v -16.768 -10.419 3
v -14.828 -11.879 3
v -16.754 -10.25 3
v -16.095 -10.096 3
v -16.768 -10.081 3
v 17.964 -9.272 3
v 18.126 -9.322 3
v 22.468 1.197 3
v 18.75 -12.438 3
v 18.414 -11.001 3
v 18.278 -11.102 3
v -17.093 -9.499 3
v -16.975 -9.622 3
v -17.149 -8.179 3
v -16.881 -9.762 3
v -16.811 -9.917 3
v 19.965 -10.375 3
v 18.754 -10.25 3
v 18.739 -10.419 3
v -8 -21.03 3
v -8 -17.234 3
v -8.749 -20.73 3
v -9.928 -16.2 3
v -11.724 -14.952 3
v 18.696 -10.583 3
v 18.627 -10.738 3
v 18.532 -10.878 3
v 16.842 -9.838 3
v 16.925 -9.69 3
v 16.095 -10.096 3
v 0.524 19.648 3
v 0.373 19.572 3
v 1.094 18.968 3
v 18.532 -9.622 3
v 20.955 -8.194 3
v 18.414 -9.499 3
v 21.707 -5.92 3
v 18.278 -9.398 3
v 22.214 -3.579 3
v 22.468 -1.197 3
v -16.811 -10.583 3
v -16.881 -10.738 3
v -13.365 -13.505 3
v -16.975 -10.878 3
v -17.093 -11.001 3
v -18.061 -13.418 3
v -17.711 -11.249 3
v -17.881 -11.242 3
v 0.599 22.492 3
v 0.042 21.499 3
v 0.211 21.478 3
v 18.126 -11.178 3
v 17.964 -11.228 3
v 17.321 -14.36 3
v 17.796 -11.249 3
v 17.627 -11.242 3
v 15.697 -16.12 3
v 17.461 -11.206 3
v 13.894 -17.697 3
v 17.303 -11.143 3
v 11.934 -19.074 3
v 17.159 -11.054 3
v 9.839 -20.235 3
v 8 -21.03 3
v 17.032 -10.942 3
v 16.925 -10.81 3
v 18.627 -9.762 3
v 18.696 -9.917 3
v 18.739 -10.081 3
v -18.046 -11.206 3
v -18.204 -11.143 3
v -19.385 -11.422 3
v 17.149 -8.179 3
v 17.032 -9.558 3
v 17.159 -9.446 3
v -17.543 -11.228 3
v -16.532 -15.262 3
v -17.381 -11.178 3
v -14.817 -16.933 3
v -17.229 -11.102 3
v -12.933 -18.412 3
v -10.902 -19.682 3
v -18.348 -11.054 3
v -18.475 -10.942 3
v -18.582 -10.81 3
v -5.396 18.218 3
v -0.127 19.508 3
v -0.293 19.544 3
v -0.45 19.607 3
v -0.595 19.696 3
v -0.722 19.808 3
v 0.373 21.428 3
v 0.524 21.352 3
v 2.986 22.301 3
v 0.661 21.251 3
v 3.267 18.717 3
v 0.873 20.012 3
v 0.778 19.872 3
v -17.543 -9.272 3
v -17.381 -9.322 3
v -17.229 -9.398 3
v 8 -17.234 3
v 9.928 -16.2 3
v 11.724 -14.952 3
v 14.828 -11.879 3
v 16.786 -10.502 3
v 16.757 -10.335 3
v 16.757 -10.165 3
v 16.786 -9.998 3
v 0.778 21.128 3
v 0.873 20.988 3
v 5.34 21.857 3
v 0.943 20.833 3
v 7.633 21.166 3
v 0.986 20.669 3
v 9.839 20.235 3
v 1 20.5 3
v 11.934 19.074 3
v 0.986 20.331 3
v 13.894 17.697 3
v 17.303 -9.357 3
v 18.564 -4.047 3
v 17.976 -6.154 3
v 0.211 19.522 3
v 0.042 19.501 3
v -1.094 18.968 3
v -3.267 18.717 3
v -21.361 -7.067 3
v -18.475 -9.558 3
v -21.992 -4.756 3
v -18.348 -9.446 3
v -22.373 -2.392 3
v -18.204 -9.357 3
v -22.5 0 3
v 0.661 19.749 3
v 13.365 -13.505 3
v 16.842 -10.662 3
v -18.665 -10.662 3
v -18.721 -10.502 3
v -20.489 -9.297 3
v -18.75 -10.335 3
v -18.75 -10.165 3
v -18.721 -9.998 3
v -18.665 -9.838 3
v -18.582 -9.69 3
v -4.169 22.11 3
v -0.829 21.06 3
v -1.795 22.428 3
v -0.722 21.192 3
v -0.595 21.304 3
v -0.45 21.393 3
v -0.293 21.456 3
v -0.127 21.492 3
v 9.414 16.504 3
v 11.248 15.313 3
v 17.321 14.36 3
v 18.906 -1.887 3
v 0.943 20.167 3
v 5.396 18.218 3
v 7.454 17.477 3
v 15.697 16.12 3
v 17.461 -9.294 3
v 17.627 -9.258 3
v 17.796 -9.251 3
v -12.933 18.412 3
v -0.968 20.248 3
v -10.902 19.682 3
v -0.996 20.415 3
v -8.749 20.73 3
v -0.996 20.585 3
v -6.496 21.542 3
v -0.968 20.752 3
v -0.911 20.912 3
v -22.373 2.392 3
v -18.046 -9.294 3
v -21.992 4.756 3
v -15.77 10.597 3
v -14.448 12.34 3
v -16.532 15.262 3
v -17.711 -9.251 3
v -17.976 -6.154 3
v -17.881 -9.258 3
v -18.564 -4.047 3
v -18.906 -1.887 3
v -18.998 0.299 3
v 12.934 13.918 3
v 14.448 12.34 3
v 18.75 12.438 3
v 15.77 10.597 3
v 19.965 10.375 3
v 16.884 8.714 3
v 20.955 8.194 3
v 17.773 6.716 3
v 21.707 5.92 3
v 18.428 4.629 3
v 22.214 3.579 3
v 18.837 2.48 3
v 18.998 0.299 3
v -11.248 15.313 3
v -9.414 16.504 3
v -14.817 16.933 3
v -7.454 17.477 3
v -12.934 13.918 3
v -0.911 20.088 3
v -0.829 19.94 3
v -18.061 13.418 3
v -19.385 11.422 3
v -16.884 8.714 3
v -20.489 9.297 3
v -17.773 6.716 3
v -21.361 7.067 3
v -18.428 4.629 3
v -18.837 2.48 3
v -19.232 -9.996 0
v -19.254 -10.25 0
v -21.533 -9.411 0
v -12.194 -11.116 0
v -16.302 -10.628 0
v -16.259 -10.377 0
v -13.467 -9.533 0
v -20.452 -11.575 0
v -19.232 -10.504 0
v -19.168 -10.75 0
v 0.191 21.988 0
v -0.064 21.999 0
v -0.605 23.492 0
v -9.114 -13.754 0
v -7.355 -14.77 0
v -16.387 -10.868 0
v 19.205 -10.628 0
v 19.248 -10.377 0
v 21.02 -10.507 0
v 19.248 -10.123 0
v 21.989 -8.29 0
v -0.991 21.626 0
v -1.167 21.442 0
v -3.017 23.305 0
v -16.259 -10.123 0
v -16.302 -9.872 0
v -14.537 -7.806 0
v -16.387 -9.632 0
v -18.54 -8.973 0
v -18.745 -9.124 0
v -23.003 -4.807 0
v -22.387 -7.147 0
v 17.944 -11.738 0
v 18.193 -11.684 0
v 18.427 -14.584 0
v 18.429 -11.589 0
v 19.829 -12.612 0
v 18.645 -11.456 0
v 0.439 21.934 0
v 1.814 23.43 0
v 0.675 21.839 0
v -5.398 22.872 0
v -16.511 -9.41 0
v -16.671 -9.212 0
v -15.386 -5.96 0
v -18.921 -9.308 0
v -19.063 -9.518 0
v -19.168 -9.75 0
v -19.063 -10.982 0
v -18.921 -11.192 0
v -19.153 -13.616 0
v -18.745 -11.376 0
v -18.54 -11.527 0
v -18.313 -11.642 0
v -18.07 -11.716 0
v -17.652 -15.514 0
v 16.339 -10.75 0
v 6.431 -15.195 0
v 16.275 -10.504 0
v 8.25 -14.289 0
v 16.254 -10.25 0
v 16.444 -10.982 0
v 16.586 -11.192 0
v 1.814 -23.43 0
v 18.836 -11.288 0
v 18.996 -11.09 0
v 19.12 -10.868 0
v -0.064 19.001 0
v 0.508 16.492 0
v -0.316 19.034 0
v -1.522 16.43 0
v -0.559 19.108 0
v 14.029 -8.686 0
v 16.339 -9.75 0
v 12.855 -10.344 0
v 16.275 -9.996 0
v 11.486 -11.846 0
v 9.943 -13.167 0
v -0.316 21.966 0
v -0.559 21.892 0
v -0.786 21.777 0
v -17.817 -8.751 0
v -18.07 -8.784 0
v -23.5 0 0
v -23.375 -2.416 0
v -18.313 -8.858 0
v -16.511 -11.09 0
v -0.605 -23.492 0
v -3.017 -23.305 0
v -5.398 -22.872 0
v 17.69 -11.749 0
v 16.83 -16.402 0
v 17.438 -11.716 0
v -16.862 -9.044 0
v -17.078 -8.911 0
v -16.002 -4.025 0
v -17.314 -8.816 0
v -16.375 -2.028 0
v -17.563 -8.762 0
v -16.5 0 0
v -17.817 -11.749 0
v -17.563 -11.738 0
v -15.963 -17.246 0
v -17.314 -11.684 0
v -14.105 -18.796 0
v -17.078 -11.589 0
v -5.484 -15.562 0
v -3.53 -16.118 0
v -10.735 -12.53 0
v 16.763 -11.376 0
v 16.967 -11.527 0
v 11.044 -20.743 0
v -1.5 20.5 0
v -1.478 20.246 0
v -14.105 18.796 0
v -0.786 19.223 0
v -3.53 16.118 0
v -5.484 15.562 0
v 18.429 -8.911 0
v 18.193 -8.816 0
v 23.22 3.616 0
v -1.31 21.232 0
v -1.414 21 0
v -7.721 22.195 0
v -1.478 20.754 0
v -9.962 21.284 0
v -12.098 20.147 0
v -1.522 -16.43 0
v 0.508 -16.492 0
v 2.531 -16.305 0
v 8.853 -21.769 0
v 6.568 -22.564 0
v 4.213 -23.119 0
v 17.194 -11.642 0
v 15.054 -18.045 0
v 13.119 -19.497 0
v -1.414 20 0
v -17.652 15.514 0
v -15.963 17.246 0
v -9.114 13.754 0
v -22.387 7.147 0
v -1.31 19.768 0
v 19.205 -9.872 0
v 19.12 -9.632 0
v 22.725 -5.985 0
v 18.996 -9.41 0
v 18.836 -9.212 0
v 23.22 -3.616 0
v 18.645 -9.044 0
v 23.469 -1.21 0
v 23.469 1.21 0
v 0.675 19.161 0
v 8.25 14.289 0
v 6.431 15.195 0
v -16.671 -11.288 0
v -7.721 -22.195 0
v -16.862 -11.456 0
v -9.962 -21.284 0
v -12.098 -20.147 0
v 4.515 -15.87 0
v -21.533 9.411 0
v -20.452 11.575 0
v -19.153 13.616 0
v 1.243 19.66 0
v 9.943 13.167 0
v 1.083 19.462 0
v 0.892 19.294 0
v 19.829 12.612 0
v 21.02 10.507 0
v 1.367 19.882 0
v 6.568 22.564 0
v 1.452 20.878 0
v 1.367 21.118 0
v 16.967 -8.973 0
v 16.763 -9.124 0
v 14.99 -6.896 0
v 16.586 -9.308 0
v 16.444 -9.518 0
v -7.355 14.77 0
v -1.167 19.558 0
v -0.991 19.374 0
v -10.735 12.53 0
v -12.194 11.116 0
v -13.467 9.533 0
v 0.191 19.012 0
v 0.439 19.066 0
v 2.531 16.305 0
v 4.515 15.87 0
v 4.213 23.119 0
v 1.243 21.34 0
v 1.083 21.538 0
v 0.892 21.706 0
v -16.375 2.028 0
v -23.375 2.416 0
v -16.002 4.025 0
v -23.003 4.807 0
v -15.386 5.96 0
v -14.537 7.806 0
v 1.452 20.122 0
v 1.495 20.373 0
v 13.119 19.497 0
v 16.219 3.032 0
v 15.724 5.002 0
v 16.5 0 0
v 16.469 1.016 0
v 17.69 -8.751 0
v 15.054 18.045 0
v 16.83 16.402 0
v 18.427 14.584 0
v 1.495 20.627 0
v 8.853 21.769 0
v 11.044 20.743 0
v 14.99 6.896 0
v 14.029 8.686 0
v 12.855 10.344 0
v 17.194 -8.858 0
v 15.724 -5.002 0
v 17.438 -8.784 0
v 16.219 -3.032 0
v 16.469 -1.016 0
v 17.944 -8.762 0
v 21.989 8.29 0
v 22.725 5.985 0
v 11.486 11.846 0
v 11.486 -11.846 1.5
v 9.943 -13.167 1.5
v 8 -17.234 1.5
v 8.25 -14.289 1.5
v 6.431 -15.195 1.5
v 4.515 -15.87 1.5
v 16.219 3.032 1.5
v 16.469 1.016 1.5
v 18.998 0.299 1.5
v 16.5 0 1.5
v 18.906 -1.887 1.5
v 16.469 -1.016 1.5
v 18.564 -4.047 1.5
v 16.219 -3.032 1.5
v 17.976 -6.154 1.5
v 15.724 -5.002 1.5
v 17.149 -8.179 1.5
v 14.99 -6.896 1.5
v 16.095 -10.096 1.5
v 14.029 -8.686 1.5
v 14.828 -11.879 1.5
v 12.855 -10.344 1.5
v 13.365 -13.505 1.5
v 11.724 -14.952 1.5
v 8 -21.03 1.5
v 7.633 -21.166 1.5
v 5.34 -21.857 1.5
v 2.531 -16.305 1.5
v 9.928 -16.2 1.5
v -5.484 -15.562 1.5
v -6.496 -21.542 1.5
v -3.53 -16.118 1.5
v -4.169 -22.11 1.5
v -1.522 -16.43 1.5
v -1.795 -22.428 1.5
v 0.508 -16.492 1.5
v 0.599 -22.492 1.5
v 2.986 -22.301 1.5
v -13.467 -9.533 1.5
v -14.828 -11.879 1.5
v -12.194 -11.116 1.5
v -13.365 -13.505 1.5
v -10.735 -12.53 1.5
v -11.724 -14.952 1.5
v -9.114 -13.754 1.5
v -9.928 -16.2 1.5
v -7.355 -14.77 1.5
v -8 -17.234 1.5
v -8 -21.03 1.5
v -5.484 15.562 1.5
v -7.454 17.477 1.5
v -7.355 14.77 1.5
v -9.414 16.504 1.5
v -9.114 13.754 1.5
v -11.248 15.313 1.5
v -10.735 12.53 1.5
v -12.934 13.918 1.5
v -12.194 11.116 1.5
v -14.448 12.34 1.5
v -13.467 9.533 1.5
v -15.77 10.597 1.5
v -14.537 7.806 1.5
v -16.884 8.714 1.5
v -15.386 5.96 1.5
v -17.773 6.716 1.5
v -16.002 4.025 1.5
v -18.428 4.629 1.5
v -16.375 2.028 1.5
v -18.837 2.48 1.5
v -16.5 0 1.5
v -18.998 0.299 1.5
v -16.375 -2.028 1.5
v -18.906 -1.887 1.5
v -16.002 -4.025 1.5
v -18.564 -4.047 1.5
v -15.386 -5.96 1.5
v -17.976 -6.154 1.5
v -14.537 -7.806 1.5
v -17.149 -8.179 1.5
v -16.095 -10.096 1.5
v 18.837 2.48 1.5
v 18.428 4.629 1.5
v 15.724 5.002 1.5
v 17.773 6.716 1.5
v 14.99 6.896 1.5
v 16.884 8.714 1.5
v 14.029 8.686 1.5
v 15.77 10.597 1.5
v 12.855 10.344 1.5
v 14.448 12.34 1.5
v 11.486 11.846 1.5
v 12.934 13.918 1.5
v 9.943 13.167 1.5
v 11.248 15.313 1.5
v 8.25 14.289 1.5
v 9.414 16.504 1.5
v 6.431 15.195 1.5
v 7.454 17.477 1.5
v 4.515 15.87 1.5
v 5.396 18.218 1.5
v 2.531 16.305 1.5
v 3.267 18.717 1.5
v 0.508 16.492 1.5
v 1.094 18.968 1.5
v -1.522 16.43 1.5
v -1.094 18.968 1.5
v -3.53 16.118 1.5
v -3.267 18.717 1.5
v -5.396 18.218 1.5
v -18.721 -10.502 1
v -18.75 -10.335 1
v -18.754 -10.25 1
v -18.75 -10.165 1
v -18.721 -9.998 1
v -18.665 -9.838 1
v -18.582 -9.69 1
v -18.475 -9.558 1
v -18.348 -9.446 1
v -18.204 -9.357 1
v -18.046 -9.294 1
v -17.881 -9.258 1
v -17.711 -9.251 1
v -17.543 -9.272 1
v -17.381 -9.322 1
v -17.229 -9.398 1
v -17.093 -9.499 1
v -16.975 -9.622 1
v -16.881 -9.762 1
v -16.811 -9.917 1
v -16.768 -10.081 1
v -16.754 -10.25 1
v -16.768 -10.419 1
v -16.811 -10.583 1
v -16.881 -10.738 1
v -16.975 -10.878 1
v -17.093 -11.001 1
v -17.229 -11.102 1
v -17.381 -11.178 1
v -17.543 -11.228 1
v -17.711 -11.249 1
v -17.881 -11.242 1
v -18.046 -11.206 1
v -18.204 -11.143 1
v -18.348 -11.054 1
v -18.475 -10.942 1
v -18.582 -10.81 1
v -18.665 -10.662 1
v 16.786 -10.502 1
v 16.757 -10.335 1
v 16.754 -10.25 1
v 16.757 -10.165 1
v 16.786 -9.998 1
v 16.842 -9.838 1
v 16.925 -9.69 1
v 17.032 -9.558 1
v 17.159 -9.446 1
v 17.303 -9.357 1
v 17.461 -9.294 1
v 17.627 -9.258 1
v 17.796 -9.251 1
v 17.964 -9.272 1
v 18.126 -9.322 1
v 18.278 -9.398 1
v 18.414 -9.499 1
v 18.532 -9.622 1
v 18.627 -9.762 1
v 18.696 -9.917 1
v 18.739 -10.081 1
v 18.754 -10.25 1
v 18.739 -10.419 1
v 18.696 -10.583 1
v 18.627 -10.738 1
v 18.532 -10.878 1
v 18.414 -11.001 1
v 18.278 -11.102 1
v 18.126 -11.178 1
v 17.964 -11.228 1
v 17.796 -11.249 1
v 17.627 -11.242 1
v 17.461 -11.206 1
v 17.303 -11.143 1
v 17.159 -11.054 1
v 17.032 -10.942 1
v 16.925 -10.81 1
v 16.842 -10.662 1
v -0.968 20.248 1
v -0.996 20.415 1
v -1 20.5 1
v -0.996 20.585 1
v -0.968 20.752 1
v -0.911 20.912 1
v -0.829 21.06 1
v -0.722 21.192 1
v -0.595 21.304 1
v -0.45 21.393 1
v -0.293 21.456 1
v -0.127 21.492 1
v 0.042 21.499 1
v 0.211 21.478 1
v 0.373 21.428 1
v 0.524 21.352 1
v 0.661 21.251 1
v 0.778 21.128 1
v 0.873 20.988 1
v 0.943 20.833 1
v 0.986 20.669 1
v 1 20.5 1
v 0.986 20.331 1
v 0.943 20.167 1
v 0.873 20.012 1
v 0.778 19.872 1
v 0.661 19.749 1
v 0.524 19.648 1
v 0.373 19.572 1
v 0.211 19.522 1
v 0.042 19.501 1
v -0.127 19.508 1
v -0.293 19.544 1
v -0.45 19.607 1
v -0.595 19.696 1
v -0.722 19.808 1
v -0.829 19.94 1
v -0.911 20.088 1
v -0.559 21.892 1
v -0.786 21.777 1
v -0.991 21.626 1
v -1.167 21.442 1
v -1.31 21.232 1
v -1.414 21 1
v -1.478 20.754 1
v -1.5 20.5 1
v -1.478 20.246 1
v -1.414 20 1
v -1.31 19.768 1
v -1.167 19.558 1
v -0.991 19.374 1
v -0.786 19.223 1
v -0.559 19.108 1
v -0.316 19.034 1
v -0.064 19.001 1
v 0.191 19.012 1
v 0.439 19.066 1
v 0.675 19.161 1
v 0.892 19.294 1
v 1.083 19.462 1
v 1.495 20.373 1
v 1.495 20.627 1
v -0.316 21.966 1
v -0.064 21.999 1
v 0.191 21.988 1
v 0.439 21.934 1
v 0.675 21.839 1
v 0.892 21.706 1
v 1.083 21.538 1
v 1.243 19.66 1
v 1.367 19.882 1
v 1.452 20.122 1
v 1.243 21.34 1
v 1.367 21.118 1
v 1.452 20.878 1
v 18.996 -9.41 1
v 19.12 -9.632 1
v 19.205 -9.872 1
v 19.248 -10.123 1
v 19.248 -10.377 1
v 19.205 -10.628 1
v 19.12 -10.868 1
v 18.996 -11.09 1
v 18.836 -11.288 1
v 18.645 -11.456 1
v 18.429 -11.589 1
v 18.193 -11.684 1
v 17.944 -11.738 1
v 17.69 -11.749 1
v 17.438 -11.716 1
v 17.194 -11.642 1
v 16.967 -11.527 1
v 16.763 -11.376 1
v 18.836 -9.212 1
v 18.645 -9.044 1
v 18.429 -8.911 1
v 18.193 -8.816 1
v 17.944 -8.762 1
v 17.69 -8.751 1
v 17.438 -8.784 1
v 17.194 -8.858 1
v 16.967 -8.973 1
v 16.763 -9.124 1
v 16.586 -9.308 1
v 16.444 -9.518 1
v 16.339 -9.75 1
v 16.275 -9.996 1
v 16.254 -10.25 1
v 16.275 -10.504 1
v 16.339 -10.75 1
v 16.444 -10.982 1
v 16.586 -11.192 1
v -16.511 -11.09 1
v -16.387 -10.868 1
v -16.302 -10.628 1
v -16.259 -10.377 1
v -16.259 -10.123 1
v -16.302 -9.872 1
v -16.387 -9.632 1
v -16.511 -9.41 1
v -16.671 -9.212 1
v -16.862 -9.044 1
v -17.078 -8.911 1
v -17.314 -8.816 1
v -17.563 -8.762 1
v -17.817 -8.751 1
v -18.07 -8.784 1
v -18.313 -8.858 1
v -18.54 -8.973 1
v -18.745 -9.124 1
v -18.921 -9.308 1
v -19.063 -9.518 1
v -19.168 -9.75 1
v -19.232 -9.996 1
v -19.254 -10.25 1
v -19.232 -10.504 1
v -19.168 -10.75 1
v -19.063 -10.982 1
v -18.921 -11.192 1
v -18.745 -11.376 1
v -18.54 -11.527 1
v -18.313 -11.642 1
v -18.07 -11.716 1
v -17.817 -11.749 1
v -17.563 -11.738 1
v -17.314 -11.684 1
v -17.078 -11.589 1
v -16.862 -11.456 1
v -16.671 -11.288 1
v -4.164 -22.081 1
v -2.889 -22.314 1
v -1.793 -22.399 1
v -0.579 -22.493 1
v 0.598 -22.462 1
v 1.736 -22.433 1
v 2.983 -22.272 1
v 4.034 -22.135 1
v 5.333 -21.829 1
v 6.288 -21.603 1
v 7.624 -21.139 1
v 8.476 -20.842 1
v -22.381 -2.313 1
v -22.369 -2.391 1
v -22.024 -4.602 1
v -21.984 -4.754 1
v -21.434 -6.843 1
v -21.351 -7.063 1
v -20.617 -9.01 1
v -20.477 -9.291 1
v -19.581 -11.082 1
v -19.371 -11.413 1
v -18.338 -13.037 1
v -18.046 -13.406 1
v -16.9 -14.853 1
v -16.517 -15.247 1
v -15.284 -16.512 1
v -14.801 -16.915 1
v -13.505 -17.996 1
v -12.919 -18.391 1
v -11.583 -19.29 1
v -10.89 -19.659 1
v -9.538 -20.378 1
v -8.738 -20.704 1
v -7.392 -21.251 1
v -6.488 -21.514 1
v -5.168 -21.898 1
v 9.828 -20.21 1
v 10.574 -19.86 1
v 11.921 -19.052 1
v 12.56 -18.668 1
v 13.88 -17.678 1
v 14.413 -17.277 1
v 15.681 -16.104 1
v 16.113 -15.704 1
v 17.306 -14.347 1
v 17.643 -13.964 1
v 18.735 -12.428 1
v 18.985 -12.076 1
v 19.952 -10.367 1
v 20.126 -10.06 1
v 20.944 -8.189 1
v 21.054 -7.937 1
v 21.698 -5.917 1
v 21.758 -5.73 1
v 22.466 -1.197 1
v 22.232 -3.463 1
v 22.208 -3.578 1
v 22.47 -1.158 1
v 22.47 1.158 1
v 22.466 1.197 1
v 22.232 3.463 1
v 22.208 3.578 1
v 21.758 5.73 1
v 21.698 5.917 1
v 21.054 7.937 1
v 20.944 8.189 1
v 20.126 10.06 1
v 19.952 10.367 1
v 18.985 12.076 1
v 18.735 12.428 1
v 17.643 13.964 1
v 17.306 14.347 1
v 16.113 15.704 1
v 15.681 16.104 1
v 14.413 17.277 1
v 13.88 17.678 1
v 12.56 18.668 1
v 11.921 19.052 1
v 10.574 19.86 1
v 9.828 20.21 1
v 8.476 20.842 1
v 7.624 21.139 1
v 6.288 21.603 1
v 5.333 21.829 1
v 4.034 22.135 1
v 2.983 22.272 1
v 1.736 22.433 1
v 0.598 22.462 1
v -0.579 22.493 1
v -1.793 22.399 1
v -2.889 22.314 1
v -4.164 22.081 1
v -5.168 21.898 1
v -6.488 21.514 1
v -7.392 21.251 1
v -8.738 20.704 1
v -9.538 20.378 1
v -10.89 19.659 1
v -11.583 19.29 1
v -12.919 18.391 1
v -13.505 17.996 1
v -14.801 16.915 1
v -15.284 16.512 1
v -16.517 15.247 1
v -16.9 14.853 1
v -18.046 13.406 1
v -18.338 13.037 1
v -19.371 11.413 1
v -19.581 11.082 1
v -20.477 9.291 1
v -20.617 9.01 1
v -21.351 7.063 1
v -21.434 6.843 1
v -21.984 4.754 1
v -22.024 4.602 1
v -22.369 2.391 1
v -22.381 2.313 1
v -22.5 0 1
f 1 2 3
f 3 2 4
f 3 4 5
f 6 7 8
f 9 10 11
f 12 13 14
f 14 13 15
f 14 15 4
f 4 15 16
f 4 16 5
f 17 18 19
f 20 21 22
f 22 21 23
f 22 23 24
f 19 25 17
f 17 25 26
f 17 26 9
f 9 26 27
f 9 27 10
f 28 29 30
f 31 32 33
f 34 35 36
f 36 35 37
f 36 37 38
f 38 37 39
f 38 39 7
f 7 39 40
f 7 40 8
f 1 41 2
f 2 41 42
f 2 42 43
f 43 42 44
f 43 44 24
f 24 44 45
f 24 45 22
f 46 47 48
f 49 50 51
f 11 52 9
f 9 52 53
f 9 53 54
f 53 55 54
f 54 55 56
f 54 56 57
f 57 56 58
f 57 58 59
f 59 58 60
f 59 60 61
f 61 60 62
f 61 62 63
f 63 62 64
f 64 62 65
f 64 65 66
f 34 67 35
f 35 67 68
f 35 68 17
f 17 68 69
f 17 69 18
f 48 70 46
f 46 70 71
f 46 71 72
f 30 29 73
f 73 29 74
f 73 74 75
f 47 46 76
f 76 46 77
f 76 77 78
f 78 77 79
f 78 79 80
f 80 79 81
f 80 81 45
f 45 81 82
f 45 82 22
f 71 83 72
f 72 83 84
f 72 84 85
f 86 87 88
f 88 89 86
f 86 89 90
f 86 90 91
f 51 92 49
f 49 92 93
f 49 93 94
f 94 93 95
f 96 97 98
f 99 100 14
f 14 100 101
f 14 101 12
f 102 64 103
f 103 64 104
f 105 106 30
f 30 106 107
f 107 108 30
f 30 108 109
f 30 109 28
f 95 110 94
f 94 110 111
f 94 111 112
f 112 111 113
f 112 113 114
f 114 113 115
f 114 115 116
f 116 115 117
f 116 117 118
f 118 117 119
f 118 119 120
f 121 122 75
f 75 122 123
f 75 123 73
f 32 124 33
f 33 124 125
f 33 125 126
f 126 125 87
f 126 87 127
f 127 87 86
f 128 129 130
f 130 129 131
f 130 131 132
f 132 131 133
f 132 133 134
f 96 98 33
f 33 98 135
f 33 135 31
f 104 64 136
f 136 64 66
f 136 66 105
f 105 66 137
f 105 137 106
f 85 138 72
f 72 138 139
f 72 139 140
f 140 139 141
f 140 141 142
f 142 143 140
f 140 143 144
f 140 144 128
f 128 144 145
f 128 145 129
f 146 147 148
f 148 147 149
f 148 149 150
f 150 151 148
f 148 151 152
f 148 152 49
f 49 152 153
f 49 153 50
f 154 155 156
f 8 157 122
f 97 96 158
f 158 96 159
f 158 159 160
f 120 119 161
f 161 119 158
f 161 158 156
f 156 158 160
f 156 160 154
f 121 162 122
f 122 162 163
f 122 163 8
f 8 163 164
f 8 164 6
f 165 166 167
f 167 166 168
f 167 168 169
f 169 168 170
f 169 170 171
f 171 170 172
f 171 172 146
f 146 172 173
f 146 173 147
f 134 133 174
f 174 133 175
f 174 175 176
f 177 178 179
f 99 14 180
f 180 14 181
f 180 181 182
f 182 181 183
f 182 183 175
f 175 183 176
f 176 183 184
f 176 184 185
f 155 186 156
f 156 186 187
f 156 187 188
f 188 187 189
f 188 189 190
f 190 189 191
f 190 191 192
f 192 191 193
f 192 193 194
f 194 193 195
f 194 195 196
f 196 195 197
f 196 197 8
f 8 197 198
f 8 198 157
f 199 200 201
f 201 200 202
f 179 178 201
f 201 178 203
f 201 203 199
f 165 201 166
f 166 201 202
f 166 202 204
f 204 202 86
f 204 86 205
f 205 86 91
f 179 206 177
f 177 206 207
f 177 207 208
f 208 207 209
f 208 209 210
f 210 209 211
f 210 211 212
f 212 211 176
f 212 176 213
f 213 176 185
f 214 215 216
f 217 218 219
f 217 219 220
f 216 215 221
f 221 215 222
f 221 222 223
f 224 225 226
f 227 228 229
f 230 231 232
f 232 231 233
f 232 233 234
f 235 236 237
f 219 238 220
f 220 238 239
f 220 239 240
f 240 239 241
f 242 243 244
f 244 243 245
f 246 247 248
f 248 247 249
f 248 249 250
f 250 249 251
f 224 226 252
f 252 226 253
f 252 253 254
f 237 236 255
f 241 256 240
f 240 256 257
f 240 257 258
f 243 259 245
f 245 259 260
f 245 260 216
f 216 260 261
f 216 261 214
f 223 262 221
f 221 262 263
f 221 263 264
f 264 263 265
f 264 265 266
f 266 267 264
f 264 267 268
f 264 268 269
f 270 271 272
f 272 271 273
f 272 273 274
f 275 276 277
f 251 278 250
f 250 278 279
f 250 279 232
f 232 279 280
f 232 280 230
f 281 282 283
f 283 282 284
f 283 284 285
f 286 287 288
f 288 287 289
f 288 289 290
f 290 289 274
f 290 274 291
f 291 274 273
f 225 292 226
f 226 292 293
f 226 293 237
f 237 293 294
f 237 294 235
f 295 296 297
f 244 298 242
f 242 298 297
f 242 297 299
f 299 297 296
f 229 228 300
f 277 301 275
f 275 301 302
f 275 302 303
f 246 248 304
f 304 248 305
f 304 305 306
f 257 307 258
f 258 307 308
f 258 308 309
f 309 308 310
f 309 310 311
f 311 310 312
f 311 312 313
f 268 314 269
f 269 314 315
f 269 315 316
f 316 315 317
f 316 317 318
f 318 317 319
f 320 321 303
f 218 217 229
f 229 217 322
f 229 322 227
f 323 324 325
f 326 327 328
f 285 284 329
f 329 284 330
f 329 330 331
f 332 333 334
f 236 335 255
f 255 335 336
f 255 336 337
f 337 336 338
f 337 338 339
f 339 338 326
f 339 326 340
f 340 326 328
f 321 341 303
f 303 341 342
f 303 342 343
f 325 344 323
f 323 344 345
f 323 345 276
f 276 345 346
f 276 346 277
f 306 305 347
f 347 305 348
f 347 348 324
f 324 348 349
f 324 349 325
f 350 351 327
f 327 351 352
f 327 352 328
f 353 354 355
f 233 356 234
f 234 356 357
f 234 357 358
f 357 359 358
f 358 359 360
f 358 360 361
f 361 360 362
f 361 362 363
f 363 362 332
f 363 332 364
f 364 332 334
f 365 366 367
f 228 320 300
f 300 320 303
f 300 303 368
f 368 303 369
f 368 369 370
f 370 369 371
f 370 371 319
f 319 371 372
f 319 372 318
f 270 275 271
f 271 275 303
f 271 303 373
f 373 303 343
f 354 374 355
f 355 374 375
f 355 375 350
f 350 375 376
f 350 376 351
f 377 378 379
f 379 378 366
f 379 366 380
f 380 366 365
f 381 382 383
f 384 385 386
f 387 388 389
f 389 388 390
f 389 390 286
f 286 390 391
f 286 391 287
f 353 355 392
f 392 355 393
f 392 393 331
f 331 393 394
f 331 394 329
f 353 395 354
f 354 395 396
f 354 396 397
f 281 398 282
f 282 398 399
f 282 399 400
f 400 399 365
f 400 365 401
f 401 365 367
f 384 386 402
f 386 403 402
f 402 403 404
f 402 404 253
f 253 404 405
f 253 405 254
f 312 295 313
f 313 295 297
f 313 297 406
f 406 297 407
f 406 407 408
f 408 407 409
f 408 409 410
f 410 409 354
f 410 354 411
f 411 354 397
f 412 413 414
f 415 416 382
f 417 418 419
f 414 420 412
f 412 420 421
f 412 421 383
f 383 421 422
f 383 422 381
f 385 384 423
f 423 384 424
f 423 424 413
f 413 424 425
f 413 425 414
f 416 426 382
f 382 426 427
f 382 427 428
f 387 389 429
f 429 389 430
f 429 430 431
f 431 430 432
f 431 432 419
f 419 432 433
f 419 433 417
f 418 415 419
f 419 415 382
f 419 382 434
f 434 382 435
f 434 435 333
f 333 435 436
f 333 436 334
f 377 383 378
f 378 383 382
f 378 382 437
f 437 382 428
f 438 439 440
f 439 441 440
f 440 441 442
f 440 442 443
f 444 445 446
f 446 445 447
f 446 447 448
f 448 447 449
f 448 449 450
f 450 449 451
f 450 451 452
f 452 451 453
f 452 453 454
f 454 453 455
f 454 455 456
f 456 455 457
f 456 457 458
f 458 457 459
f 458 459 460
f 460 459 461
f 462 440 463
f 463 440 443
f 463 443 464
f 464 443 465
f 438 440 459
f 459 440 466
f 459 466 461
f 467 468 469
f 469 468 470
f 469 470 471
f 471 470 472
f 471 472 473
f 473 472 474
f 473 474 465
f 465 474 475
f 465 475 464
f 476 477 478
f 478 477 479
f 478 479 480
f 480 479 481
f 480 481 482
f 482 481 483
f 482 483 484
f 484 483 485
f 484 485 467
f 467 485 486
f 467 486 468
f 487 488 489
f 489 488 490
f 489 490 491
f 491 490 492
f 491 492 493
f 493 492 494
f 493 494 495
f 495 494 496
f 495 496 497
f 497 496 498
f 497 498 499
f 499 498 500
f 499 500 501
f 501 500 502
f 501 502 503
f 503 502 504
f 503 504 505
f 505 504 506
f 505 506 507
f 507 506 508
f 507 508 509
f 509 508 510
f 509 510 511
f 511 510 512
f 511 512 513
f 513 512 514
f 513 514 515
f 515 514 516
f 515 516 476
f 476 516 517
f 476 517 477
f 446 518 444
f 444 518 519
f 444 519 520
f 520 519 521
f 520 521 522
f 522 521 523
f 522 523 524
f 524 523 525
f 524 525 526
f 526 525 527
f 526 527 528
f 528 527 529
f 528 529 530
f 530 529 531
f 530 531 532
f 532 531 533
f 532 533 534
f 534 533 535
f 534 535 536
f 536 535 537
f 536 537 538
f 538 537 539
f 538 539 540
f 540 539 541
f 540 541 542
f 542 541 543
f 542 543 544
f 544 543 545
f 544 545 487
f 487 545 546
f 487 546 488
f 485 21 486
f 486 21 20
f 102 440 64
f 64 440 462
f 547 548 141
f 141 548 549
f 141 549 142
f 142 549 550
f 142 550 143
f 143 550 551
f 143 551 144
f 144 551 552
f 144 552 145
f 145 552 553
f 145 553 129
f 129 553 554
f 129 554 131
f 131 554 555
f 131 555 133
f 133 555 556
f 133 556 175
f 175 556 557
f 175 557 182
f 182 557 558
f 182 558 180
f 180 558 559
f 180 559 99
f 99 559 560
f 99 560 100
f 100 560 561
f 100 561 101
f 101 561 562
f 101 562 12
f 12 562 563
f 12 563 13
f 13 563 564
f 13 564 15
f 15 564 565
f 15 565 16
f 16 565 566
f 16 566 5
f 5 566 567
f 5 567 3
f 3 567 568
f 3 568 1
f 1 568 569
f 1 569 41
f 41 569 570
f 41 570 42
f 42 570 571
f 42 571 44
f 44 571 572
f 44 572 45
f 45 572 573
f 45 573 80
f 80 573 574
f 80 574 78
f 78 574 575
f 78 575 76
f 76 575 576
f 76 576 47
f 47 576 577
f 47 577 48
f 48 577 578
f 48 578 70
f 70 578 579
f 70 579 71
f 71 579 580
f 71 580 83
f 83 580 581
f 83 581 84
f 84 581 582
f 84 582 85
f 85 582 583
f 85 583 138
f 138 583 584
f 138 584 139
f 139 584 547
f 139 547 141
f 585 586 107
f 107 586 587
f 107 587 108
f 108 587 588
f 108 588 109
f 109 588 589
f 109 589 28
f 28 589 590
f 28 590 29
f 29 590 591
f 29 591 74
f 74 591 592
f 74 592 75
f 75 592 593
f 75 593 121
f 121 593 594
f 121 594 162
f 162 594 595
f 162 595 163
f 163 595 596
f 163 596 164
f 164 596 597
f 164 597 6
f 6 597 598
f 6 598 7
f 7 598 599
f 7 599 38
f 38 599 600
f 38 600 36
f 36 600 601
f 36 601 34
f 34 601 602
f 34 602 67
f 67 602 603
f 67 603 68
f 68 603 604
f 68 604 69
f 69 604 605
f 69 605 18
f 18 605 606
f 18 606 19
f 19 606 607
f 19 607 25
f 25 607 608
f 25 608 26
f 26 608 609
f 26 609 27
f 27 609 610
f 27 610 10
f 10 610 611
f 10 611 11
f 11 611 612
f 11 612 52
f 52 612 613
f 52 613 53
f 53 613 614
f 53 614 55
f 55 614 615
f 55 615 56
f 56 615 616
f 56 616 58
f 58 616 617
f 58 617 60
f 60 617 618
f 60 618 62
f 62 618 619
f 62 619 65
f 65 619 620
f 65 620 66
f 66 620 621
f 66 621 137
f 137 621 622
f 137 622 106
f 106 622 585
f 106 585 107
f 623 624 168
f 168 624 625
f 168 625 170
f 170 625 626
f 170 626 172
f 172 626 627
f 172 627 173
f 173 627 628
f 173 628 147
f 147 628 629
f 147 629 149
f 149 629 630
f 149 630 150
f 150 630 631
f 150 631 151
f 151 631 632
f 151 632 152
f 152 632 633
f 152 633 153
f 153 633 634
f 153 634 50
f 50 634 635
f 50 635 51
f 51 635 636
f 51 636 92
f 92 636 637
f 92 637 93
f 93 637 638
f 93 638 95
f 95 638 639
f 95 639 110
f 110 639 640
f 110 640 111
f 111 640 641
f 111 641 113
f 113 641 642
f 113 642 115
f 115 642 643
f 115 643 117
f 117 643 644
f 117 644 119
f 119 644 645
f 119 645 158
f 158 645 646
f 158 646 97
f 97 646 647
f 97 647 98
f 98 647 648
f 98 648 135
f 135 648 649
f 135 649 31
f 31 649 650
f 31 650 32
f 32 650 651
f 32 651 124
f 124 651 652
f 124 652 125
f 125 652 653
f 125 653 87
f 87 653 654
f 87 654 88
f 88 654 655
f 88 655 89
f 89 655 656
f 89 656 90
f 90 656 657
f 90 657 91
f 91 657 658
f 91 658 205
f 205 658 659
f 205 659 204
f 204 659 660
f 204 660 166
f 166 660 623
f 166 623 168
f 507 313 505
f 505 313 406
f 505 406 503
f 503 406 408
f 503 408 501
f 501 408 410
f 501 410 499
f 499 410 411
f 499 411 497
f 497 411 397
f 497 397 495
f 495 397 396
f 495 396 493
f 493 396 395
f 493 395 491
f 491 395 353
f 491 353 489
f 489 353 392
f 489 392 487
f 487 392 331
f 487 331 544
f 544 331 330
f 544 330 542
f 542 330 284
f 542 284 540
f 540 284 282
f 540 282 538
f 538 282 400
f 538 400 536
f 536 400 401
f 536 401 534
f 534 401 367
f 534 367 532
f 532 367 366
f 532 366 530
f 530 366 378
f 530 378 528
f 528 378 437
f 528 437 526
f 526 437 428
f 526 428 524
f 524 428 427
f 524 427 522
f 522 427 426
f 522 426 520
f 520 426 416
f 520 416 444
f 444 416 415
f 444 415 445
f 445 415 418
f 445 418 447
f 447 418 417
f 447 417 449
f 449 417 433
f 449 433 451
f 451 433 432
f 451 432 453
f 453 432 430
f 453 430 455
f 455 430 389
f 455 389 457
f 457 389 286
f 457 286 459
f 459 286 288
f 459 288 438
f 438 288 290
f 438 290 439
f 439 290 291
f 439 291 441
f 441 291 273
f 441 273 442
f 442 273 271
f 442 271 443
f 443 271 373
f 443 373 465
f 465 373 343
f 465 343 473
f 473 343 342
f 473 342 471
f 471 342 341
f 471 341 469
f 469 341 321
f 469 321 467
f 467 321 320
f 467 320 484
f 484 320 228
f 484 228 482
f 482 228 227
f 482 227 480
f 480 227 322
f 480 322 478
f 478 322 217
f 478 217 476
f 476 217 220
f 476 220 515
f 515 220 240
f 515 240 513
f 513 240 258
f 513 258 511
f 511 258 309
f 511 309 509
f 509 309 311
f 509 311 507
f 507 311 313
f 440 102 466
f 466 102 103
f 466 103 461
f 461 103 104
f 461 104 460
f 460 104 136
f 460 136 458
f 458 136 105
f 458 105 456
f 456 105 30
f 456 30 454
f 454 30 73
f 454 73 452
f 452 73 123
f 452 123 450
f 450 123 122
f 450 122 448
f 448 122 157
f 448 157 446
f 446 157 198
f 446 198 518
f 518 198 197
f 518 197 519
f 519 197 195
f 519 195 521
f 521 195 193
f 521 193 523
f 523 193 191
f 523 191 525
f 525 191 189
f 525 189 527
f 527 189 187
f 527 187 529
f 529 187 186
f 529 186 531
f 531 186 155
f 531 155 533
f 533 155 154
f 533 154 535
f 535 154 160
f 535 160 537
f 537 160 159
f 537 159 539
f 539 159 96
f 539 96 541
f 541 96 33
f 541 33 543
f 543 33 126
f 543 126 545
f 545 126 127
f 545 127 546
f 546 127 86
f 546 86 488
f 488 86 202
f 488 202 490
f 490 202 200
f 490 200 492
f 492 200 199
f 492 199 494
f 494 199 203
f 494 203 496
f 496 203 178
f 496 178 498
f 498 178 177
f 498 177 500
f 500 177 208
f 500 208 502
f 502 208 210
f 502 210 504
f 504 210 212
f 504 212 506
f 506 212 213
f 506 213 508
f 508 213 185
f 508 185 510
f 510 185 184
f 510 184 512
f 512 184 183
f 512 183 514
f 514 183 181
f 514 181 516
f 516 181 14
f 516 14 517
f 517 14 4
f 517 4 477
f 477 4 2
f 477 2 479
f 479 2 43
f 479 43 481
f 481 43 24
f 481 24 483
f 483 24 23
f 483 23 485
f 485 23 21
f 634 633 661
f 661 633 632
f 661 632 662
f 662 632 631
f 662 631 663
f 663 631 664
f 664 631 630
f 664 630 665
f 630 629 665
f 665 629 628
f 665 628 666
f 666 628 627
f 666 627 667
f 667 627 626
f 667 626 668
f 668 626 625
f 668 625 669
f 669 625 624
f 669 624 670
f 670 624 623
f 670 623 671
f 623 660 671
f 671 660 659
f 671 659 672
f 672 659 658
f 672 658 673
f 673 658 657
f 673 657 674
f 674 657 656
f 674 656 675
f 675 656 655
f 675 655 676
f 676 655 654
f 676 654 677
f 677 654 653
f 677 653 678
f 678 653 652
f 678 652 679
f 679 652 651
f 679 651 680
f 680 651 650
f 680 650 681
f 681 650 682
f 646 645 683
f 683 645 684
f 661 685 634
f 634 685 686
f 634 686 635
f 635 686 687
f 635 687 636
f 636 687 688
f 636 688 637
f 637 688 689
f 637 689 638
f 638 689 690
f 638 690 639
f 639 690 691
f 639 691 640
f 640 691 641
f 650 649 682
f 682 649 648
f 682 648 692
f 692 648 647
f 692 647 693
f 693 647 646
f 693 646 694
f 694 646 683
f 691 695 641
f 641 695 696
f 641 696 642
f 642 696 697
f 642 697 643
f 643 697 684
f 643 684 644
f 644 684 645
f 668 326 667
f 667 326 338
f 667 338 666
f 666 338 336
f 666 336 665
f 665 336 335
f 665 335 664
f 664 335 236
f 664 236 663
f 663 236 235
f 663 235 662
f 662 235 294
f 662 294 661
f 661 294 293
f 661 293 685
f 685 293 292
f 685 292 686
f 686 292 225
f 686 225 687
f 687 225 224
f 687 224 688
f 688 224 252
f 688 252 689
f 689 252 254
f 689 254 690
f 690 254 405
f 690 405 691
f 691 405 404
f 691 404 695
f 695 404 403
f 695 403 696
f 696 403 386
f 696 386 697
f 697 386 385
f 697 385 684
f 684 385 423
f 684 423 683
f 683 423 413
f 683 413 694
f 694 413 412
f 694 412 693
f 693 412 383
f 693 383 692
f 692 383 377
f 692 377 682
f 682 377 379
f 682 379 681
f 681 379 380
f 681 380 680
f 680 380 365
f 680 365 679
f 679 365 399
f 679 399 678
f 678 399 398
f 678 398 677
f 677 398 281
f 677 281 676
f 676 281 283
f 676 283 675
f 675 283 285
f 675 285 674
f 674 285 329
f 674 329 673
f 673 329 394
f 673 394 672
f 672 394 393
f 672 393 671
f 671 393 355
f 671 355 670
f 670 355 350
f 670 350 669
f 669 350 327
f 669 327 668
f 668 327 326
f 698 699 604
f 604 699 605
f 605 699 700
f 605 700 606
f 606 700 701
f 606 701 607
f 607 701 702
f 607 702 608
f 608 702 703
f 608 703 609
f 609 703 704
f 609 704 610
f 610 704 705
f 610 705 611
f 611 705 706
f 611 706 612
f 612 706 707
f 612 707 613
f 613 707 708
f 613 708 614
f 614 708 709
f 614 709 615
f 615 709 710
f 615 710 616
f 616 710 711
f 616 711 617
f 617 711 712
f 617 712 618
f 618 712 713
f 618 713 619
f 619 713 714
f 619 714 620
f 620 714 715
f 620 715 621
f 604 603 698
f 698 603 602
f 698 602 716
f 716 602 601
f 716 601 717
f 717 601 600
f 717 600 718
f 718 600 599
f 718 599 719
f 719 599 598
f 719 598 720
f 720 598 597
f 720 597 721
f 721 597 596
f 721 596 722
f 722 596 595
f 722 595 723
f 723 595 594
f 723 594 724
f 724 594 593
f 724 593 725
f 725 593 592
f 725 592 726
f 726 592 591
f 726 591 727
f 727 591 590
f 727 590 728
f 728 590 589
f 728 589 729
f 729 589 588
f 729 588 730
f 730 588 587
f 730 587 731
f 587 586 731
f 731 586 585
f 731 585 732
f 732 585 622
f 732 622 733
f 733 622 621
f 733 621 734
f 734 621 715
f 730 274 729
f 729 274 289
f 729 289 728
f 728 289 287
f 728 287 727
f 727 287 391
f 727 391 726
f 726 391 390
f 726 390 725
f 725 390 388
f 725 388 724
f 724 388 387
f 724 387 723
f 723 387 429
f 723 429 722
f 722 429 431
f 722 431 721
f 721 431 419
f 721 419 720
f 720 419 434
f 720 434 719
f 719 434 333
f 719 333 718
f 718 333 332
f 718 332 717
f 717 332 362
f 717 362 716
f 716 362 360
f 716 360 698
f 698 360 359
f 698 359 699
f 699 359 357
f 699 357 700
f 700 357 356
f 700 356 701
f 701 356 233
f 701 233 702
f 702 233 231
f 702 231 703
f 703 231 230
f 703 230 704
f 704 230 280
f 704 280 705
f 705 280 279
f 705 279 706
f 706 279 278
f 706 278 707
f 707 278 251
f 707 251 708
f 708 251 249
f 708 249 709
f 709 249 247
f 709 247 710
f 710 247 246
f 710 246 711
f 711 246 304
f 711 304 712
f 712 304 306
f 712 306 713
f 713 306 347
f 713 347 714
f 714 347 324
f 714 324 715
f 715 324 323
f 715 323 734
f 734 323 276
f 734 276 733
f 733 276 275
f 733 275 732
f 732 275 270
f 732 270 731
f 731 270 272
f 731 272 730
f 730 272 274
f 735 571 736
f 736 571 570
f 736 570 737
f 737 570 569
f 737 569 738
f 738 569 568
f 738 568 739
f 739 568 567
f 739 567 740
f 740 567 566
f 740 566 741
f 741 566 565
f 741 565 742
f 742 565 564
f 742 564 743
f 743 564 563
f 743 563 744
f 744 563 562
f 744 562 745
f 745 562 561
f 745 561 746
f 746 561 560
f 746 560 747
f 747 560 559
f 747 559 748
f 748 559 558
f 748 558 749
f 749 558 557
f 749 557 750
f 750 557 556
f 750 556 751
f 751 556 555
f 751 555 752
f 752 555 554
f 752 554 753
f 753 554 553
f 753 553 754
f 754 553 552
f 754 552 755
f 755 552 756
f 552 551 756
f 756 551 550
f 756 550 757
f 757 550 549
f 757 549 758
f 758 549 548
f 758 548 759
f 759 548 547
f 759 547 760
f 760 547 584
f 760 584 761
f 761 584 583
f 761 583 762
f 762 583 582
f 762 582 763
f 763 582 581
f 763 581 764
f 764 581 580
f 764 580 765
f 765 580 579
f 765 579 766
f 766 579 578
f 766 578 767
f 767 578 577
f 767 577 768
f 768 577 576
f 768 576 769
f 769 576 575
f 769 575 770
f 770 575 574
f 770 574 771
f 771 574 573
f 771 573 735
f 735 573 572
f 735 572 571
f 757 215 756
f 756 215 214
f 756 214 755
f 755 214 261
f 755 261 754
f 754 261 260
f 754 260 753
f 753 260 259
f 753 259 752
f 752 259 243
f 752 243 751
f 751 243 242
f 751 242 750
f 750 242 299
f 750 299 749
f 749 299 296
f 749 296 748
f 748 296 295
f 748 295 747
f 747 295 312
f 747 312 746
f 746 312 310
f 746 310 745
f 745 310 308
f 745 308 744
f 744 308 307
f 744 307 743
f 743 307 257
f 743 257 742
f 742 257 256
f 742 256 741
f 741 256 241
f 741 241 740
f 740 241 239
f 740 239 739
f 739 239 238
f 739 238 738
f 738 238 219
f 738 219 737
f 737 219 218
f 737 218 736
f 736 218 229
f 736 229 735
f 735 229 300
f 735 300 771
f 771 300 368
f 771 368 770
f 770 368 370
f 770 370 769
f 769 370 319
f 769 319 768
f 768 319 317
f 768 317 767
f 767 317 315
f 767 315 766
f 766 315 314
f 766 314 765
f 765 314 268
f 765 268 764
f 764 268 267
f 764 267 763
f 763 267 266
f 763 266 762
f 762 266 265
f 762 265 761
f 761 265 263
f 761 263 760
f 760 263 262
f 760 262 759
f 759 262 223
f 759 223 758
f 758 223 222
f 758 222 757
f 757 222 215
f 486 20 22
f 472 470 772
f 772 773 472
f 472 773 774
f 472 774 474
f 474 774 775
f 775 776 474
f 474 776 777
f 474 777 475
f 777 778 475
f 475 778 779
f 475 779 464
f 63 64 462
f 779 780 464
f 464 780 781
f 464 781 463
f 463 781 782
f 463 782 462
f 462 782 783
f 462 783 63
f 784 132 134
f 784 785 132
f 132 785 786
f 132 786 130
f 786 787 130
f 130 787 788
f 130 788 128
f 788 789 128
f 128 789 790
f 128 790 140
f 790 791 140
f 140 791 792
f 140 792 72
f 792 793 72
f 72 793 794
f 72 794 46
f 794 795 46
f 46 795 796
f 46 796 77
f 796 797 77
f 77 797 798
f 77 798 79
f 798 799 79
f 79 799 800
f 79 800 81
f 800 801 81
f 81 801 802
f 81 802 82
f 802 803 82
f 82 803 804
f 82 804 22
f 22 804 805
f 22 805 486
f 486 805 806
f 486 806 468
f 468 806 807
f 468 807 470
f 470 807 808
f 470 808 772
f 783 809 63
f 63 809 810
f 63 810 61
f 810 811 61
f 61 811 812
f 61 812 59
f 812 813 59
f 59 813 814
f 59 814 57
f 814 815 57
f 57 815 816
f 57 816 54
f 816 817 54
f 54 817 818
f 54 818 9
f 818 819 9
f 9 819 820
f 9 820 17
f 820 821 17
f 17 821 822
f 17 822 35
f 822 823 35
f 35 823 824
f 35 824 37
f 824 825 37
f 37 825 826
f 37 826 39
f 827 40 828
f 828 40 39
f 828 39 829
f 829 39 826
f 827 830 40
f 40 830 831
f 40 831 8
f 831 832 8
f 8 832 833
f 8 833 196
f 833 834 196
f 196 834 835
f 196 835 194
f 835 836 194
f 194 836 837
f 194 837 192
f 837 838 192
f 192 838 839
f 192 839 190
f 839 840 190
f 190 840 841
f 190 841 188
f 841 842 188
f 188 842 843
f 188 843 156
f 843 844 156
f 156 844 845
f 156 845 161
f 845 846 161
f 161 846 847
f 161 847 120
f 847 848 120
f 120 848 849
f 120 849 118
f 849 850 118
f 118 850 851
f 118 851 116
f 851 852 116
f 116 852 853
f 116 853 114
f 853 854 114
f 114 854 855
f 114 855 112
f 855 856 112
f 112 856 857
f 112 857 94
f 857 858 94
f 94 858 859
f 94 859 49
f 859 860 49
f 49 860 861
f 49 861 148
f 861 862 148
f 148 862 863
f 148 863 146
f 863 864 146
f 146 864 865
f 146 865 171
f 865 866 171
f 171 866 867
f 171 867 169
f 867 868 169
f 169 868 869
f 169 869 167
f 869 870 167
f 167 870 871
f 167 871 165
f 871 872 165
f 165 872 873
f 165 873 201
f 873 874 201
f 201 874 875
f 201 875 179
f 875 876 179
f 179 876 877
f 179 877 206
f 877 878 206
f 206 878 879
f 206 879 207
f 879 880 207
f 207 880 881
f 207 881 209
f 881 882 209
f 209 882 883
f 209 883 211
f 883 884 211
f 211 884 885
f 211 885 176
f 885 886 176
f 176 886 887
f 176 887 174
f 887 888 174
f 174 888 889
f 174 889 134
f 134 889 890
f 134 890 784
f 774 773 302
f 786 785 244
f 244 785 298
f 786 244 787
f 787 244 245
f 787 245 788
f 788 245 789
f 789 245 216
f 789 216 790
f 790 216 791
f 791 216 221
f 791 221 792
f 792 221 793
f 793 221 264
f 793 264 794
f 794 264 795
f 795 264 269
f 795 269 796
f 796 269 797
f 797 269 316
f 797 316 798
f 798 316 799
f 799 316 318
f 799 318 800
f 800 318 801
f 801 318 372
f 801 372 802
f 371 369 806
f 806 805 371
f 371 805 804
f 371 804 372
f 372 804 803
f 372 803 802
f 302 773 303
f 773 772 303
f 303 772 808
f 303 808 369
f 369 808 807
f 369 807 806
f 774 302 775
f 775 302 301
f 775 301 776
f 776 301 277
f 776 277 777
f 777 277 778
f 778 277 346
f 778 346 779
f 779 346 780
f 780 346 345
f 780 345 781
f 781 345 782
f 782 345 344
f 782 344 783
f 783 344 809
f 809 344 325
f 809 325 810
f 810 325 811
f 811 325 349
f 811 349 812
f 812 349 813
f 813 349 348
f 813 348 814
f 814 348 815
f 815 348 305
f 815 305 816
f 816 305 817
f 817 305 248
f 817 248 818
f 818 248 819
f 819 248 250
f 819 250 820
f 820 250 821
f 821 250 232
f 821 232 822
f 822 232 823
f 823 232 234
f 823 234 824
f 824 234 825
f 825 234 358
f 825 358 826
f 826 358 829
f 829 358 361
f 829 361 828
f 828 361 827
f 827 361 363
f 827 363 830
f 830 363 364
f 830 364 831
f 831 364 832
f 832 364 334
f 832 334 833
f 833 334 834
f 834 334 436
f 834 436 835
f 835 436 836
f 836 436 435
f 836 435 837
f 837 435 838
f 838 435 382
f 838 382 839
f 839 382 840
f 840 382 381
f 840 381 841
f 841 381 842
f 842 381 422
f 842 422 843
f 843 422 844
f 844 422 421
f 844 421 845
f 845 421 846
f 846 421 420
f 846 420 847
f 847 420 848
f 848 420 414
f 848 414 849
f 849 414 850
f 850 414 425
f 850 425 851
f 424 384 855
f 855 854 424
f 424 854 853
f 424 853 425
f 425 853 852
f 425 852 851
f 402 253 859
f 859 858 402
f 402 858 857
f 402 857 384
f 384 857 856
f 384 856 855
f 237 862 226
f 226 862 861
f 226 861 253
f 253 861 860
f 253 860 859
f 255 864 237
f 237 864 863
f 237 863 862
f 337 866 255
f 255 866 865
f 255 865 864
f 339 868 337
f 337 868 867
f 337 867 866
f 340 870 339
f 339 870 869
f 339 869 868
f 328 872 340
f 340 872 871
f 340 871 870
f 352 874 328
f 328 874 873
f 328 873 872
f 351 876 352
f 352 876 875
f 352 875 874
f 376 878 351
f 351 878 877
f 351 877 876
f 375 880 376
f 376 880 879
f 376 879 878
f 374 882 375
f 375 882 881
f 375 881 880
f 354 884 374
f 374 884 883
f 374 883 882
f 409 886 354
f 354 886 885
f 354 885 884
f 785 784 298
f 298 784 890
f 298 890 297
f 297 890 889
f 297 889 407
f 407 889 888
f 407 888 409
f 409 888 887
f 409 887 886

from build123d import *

# Parameters (mm, degrees)
SKETCH_1_R          = 25
SKETCH_1_R_2        = 16.5
EXTRUDE_1_DEPTH     = 3
SKETCH_2_R          = 19
CUT_EXTRUDE_1_DEPTH = 1.5
CUT_EXTRUDE_2_DEPTH = 1.5
SKETCH_4_R          = 1
CUT_EXTRUDE_3_DEPTH = 31.5
SKETCH_6_R          = 1.5
CUT_EXTRUDE_4_DEPTH = 1


with BuildPart() as part:
    # 草图1 → 凸台-拉伸1 (new body)
    with BuildSketch(Plane.XY):
        Circle(SKETCH_1_R)
        Circle(SKETCH_1_R_2, mode=Mode.SUBTRACT)
    extrude(amount=EXTRUDE_1_DEPTH)

    # 草图2 → 切除-拉伸1 (cut)
    with BuildSketch(Plane.XY.offset(3)):
        Circle(SKETCH_2_R)
    extrude(amount=-CUT_EXTRUDE_1_DEPTH, mode=Mode.SUBTRACT)

    # 草图3 → 切除-拉伸2 (cut)
    with BuildSketch(Plane.XY.offset(3)):
        Polygon((0, -29.98623759), (8, -29.98623759), (8, -6.378834071), (-8, -6.378834071), (-8, -29.98623759), align=None)
    extrude(amount=-CUT_EXTRUDE_2_DEPTH, mode=Mode.SUBTRACT)

    # 草图4 → 切除-拉伸3 (cut)
    with BuildSketch(Plane.XY.offset(3)):
        with Locations((0, 20.5)):
            Circle(SKETCH_4_R)
        with Locations((17.753520778, -10.25)):
            Circle(SKETCH_4_R)
        with Locations((-17.753520778, -10.25)):
            Circle(SKETCH_4_R)
    extrude(amount=-CUT_EXTRUDE_3_DEPTH, mode=Mode.SUBTRACT)

    # 草图6 → 切除-拉伸4 (cut)
    with BuildSketch(Plane(origin=(0, 0, 0), x_dir=(-1, 0, 0), z_dir=(0, 0, -1))):
        with Locations((0, 20.5)):
            Circle(SKETCH_6_R)
        with Locations((17.753520778, -10.25)):
            Circle(SKETCH_6_R)
        with Locations((-17.753520778, -10.25)):
            Circle(SKETCH_6_R)
    extrude(amount=-CUT_EXTRUDE_4_DEPTH, mode=Mode.SUBTRACT)

    # 草图8 → 切除-旋转1 (revolve, cut)
    with BuildSketch(Plane(origin=(0, 0, 0), x_dir=(1, 0, 0), z_dir=(0, 1, 0))):
        Polygon((-22.5, -1), (-22.5, -3), (-22.5, -4.221155356), (-26.330731104, -4.221155356), (-26.330731104, -3), (-26.330731104, 1.037990449), (-24, 1.037990449), (-23.5, 1.037990449), (-23.5, 0), align=None)
    revolve(axis=Axis((0, 0, 0), (0, 0, 1)), mode=Mode.SUBTRACT)


solid = part.part
